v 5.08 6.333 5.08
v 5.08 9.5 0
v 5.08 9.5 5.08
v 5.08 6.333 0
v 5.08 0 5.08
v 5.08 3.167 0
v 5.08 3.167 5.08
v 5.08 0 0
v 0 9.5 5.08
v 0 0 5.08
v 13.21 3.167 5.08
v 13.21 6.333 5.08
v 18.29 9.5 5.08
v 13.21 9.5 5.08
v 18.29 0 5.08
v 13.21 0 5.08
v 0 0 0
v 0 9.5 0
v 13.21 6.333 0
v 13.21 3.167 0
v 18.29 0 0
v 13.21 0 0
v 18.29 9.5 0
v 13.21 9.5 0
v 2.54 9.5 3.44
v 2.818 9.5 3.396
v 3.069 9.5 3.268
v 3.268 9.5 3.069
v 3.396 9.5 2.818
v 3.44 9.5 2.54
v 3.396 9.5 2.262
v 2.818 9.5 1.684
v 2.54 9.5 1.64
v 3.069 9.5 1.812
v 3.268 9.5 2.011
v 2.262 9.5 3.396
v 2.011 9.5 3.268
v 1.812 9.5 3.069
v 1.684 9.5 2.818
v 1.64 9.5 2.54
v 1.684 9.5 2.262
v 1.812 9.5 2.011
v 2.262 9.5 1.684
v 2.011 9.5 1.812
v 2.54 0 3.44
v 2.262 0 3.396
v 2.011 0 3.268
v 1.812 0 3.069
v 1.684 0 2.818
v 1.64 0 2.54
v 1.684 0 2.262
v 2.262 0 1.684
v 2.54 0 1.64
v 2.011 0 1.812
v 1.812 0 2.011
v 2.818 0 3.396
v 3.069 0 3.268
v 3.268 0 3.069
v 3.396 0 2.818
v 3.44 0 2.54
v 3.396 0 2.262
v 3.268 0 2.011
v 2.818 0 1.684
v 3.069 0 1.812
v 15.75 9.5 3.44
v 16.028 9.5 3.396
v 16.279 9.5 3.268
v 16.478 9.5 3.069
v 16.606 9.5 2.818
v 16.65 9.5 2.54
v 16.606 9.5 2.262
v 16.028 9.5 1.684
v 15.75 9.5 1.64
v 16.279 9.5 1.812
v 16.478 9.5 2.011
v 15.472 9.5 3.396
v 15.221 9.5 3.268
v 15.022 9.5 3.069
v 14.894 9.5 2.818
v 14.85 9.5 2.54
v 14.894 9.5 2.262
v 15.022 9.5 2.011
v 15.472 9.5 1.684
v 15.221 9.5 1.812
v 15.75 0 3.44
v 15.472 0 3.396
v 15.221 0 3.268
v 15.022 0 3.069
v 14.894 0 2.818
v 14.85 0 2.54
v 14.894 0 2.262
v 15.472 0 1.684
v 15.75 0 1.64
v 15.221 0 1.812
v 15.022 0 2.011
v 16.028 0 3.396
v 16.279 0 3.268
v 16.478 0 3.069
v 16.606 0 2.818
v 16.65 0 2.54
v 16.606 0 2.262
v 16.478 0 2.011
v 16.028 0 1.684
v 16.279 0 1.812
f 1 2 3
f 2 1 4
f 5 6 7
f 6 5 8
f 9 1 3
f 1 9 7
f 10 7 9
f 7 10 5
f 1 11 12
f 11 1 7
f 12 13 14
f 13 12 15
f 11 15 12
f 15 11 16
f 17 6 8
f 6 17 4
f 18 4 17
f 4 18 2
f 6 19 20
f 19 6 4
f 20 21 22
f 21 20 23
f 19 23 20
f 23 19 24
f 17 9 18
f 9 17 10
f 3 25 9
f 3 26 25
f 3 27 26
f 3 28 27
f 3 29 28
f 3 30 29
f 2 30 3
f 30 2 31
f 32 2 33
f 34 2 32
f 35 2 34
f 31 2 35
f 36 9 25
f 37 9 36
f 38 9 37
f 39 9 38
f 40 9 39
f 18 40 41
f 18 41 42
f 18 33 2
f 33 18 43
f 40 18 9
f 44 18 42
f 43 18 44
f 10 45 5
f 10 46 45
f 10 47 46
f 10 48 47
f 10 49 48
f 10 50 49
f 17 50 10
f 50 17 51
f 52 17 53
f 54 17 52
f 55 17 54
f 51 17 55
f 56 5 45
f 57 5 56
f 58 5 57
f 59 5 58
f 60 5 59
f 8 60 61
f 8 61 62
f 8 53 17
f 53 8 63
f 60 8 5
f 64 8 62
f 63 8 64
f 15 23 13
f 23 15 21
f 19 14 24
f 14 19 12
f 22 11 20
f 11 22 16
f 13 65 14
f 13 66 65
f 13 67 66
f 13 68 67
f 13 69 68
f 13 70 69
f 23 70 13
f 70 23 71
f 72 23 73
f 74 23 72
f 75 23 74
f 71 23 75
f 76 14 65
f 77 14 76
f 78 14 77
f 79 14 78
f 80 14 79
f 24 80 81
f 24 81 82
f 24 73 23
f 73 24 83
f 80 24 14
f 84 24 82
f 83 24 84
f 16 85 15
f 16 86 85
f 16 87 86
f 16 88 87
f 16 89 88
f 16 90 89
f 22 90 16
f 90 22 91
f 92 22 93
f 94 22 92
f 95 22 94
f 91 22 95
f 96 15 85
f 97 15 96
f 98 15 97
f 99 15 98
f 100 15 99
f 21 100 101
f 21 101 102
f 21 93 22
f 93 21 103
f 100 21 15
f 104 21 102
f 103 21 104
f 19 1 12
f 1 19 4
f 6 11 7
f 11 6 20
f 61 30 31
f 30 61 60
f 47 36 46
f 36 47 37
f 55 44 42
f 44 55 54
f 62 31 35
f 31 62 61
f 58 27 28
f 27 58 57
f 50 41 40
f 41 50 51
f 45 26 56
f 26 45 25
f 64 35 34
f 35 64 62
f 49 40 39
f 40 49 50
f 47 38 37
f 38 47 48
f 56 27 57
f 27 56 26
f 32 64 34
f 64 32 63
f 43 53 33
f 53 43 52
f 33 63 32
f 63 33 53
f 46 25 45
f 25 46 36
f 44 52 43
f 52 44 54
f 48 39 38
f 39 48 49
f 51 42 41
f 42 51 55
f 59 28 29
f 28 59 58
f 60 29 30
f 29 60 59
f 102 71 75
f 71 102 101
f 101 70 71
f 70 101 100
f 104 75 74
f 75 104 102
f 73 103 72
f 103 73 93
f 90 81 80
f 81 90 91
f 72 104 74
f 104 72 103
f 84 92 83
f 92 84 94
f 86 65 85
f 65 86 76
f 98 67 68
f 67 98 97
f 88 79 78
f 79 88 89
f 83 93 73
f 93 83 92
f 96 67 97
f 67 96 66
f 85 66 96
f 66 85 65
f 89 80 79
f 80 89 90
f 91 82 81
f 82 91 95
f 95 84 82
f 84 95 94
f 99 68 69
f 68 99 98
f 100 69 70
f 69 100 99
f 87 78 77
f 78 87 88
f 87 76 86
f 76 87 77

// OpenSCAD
// file: ../../../share/openscad/eurorack-pcb-holder.scad
module eurorack_pcb_holder(hole_spacing, hole_diameter=1.8, width=5.08, height=9.5) {
    translate([width / 2, height / 2, width / 2]) {
        difference() {
            union() {
                cube([width, height, width], center=true);
                translate([hole_spacing, 0, 0])
                    cube([width, height, width], center=true);
                translate([hole_spacing / 2, 0, 0])
                    cube([hole_spacing, height / 3, width], center=true);
            }

            rotate([-90, 0, 0]) {
                cylinder(h=height, d=hole_diameter, $fn=20, center=true);
                translate([hole_spacing, 0, 0])
                    cylinder(h=height, d=hole_diameter, $fn=20, center=true);
            }
        }
    }
}
// main file
/*
 * SPDX-FileCopyrightText: 2021-2022 Rafael G. Martins <rafael@rafaelmartins.eng.br>
 * SPDX-License-Identifier: CERN-OHL-S-2.0
 */

include <../../../share/openscad/eurorack-pcb-holder.scad>

hole_spacing = 13.21;

// must print two of this
eurorack_pcb_holder(hole_spacing);
